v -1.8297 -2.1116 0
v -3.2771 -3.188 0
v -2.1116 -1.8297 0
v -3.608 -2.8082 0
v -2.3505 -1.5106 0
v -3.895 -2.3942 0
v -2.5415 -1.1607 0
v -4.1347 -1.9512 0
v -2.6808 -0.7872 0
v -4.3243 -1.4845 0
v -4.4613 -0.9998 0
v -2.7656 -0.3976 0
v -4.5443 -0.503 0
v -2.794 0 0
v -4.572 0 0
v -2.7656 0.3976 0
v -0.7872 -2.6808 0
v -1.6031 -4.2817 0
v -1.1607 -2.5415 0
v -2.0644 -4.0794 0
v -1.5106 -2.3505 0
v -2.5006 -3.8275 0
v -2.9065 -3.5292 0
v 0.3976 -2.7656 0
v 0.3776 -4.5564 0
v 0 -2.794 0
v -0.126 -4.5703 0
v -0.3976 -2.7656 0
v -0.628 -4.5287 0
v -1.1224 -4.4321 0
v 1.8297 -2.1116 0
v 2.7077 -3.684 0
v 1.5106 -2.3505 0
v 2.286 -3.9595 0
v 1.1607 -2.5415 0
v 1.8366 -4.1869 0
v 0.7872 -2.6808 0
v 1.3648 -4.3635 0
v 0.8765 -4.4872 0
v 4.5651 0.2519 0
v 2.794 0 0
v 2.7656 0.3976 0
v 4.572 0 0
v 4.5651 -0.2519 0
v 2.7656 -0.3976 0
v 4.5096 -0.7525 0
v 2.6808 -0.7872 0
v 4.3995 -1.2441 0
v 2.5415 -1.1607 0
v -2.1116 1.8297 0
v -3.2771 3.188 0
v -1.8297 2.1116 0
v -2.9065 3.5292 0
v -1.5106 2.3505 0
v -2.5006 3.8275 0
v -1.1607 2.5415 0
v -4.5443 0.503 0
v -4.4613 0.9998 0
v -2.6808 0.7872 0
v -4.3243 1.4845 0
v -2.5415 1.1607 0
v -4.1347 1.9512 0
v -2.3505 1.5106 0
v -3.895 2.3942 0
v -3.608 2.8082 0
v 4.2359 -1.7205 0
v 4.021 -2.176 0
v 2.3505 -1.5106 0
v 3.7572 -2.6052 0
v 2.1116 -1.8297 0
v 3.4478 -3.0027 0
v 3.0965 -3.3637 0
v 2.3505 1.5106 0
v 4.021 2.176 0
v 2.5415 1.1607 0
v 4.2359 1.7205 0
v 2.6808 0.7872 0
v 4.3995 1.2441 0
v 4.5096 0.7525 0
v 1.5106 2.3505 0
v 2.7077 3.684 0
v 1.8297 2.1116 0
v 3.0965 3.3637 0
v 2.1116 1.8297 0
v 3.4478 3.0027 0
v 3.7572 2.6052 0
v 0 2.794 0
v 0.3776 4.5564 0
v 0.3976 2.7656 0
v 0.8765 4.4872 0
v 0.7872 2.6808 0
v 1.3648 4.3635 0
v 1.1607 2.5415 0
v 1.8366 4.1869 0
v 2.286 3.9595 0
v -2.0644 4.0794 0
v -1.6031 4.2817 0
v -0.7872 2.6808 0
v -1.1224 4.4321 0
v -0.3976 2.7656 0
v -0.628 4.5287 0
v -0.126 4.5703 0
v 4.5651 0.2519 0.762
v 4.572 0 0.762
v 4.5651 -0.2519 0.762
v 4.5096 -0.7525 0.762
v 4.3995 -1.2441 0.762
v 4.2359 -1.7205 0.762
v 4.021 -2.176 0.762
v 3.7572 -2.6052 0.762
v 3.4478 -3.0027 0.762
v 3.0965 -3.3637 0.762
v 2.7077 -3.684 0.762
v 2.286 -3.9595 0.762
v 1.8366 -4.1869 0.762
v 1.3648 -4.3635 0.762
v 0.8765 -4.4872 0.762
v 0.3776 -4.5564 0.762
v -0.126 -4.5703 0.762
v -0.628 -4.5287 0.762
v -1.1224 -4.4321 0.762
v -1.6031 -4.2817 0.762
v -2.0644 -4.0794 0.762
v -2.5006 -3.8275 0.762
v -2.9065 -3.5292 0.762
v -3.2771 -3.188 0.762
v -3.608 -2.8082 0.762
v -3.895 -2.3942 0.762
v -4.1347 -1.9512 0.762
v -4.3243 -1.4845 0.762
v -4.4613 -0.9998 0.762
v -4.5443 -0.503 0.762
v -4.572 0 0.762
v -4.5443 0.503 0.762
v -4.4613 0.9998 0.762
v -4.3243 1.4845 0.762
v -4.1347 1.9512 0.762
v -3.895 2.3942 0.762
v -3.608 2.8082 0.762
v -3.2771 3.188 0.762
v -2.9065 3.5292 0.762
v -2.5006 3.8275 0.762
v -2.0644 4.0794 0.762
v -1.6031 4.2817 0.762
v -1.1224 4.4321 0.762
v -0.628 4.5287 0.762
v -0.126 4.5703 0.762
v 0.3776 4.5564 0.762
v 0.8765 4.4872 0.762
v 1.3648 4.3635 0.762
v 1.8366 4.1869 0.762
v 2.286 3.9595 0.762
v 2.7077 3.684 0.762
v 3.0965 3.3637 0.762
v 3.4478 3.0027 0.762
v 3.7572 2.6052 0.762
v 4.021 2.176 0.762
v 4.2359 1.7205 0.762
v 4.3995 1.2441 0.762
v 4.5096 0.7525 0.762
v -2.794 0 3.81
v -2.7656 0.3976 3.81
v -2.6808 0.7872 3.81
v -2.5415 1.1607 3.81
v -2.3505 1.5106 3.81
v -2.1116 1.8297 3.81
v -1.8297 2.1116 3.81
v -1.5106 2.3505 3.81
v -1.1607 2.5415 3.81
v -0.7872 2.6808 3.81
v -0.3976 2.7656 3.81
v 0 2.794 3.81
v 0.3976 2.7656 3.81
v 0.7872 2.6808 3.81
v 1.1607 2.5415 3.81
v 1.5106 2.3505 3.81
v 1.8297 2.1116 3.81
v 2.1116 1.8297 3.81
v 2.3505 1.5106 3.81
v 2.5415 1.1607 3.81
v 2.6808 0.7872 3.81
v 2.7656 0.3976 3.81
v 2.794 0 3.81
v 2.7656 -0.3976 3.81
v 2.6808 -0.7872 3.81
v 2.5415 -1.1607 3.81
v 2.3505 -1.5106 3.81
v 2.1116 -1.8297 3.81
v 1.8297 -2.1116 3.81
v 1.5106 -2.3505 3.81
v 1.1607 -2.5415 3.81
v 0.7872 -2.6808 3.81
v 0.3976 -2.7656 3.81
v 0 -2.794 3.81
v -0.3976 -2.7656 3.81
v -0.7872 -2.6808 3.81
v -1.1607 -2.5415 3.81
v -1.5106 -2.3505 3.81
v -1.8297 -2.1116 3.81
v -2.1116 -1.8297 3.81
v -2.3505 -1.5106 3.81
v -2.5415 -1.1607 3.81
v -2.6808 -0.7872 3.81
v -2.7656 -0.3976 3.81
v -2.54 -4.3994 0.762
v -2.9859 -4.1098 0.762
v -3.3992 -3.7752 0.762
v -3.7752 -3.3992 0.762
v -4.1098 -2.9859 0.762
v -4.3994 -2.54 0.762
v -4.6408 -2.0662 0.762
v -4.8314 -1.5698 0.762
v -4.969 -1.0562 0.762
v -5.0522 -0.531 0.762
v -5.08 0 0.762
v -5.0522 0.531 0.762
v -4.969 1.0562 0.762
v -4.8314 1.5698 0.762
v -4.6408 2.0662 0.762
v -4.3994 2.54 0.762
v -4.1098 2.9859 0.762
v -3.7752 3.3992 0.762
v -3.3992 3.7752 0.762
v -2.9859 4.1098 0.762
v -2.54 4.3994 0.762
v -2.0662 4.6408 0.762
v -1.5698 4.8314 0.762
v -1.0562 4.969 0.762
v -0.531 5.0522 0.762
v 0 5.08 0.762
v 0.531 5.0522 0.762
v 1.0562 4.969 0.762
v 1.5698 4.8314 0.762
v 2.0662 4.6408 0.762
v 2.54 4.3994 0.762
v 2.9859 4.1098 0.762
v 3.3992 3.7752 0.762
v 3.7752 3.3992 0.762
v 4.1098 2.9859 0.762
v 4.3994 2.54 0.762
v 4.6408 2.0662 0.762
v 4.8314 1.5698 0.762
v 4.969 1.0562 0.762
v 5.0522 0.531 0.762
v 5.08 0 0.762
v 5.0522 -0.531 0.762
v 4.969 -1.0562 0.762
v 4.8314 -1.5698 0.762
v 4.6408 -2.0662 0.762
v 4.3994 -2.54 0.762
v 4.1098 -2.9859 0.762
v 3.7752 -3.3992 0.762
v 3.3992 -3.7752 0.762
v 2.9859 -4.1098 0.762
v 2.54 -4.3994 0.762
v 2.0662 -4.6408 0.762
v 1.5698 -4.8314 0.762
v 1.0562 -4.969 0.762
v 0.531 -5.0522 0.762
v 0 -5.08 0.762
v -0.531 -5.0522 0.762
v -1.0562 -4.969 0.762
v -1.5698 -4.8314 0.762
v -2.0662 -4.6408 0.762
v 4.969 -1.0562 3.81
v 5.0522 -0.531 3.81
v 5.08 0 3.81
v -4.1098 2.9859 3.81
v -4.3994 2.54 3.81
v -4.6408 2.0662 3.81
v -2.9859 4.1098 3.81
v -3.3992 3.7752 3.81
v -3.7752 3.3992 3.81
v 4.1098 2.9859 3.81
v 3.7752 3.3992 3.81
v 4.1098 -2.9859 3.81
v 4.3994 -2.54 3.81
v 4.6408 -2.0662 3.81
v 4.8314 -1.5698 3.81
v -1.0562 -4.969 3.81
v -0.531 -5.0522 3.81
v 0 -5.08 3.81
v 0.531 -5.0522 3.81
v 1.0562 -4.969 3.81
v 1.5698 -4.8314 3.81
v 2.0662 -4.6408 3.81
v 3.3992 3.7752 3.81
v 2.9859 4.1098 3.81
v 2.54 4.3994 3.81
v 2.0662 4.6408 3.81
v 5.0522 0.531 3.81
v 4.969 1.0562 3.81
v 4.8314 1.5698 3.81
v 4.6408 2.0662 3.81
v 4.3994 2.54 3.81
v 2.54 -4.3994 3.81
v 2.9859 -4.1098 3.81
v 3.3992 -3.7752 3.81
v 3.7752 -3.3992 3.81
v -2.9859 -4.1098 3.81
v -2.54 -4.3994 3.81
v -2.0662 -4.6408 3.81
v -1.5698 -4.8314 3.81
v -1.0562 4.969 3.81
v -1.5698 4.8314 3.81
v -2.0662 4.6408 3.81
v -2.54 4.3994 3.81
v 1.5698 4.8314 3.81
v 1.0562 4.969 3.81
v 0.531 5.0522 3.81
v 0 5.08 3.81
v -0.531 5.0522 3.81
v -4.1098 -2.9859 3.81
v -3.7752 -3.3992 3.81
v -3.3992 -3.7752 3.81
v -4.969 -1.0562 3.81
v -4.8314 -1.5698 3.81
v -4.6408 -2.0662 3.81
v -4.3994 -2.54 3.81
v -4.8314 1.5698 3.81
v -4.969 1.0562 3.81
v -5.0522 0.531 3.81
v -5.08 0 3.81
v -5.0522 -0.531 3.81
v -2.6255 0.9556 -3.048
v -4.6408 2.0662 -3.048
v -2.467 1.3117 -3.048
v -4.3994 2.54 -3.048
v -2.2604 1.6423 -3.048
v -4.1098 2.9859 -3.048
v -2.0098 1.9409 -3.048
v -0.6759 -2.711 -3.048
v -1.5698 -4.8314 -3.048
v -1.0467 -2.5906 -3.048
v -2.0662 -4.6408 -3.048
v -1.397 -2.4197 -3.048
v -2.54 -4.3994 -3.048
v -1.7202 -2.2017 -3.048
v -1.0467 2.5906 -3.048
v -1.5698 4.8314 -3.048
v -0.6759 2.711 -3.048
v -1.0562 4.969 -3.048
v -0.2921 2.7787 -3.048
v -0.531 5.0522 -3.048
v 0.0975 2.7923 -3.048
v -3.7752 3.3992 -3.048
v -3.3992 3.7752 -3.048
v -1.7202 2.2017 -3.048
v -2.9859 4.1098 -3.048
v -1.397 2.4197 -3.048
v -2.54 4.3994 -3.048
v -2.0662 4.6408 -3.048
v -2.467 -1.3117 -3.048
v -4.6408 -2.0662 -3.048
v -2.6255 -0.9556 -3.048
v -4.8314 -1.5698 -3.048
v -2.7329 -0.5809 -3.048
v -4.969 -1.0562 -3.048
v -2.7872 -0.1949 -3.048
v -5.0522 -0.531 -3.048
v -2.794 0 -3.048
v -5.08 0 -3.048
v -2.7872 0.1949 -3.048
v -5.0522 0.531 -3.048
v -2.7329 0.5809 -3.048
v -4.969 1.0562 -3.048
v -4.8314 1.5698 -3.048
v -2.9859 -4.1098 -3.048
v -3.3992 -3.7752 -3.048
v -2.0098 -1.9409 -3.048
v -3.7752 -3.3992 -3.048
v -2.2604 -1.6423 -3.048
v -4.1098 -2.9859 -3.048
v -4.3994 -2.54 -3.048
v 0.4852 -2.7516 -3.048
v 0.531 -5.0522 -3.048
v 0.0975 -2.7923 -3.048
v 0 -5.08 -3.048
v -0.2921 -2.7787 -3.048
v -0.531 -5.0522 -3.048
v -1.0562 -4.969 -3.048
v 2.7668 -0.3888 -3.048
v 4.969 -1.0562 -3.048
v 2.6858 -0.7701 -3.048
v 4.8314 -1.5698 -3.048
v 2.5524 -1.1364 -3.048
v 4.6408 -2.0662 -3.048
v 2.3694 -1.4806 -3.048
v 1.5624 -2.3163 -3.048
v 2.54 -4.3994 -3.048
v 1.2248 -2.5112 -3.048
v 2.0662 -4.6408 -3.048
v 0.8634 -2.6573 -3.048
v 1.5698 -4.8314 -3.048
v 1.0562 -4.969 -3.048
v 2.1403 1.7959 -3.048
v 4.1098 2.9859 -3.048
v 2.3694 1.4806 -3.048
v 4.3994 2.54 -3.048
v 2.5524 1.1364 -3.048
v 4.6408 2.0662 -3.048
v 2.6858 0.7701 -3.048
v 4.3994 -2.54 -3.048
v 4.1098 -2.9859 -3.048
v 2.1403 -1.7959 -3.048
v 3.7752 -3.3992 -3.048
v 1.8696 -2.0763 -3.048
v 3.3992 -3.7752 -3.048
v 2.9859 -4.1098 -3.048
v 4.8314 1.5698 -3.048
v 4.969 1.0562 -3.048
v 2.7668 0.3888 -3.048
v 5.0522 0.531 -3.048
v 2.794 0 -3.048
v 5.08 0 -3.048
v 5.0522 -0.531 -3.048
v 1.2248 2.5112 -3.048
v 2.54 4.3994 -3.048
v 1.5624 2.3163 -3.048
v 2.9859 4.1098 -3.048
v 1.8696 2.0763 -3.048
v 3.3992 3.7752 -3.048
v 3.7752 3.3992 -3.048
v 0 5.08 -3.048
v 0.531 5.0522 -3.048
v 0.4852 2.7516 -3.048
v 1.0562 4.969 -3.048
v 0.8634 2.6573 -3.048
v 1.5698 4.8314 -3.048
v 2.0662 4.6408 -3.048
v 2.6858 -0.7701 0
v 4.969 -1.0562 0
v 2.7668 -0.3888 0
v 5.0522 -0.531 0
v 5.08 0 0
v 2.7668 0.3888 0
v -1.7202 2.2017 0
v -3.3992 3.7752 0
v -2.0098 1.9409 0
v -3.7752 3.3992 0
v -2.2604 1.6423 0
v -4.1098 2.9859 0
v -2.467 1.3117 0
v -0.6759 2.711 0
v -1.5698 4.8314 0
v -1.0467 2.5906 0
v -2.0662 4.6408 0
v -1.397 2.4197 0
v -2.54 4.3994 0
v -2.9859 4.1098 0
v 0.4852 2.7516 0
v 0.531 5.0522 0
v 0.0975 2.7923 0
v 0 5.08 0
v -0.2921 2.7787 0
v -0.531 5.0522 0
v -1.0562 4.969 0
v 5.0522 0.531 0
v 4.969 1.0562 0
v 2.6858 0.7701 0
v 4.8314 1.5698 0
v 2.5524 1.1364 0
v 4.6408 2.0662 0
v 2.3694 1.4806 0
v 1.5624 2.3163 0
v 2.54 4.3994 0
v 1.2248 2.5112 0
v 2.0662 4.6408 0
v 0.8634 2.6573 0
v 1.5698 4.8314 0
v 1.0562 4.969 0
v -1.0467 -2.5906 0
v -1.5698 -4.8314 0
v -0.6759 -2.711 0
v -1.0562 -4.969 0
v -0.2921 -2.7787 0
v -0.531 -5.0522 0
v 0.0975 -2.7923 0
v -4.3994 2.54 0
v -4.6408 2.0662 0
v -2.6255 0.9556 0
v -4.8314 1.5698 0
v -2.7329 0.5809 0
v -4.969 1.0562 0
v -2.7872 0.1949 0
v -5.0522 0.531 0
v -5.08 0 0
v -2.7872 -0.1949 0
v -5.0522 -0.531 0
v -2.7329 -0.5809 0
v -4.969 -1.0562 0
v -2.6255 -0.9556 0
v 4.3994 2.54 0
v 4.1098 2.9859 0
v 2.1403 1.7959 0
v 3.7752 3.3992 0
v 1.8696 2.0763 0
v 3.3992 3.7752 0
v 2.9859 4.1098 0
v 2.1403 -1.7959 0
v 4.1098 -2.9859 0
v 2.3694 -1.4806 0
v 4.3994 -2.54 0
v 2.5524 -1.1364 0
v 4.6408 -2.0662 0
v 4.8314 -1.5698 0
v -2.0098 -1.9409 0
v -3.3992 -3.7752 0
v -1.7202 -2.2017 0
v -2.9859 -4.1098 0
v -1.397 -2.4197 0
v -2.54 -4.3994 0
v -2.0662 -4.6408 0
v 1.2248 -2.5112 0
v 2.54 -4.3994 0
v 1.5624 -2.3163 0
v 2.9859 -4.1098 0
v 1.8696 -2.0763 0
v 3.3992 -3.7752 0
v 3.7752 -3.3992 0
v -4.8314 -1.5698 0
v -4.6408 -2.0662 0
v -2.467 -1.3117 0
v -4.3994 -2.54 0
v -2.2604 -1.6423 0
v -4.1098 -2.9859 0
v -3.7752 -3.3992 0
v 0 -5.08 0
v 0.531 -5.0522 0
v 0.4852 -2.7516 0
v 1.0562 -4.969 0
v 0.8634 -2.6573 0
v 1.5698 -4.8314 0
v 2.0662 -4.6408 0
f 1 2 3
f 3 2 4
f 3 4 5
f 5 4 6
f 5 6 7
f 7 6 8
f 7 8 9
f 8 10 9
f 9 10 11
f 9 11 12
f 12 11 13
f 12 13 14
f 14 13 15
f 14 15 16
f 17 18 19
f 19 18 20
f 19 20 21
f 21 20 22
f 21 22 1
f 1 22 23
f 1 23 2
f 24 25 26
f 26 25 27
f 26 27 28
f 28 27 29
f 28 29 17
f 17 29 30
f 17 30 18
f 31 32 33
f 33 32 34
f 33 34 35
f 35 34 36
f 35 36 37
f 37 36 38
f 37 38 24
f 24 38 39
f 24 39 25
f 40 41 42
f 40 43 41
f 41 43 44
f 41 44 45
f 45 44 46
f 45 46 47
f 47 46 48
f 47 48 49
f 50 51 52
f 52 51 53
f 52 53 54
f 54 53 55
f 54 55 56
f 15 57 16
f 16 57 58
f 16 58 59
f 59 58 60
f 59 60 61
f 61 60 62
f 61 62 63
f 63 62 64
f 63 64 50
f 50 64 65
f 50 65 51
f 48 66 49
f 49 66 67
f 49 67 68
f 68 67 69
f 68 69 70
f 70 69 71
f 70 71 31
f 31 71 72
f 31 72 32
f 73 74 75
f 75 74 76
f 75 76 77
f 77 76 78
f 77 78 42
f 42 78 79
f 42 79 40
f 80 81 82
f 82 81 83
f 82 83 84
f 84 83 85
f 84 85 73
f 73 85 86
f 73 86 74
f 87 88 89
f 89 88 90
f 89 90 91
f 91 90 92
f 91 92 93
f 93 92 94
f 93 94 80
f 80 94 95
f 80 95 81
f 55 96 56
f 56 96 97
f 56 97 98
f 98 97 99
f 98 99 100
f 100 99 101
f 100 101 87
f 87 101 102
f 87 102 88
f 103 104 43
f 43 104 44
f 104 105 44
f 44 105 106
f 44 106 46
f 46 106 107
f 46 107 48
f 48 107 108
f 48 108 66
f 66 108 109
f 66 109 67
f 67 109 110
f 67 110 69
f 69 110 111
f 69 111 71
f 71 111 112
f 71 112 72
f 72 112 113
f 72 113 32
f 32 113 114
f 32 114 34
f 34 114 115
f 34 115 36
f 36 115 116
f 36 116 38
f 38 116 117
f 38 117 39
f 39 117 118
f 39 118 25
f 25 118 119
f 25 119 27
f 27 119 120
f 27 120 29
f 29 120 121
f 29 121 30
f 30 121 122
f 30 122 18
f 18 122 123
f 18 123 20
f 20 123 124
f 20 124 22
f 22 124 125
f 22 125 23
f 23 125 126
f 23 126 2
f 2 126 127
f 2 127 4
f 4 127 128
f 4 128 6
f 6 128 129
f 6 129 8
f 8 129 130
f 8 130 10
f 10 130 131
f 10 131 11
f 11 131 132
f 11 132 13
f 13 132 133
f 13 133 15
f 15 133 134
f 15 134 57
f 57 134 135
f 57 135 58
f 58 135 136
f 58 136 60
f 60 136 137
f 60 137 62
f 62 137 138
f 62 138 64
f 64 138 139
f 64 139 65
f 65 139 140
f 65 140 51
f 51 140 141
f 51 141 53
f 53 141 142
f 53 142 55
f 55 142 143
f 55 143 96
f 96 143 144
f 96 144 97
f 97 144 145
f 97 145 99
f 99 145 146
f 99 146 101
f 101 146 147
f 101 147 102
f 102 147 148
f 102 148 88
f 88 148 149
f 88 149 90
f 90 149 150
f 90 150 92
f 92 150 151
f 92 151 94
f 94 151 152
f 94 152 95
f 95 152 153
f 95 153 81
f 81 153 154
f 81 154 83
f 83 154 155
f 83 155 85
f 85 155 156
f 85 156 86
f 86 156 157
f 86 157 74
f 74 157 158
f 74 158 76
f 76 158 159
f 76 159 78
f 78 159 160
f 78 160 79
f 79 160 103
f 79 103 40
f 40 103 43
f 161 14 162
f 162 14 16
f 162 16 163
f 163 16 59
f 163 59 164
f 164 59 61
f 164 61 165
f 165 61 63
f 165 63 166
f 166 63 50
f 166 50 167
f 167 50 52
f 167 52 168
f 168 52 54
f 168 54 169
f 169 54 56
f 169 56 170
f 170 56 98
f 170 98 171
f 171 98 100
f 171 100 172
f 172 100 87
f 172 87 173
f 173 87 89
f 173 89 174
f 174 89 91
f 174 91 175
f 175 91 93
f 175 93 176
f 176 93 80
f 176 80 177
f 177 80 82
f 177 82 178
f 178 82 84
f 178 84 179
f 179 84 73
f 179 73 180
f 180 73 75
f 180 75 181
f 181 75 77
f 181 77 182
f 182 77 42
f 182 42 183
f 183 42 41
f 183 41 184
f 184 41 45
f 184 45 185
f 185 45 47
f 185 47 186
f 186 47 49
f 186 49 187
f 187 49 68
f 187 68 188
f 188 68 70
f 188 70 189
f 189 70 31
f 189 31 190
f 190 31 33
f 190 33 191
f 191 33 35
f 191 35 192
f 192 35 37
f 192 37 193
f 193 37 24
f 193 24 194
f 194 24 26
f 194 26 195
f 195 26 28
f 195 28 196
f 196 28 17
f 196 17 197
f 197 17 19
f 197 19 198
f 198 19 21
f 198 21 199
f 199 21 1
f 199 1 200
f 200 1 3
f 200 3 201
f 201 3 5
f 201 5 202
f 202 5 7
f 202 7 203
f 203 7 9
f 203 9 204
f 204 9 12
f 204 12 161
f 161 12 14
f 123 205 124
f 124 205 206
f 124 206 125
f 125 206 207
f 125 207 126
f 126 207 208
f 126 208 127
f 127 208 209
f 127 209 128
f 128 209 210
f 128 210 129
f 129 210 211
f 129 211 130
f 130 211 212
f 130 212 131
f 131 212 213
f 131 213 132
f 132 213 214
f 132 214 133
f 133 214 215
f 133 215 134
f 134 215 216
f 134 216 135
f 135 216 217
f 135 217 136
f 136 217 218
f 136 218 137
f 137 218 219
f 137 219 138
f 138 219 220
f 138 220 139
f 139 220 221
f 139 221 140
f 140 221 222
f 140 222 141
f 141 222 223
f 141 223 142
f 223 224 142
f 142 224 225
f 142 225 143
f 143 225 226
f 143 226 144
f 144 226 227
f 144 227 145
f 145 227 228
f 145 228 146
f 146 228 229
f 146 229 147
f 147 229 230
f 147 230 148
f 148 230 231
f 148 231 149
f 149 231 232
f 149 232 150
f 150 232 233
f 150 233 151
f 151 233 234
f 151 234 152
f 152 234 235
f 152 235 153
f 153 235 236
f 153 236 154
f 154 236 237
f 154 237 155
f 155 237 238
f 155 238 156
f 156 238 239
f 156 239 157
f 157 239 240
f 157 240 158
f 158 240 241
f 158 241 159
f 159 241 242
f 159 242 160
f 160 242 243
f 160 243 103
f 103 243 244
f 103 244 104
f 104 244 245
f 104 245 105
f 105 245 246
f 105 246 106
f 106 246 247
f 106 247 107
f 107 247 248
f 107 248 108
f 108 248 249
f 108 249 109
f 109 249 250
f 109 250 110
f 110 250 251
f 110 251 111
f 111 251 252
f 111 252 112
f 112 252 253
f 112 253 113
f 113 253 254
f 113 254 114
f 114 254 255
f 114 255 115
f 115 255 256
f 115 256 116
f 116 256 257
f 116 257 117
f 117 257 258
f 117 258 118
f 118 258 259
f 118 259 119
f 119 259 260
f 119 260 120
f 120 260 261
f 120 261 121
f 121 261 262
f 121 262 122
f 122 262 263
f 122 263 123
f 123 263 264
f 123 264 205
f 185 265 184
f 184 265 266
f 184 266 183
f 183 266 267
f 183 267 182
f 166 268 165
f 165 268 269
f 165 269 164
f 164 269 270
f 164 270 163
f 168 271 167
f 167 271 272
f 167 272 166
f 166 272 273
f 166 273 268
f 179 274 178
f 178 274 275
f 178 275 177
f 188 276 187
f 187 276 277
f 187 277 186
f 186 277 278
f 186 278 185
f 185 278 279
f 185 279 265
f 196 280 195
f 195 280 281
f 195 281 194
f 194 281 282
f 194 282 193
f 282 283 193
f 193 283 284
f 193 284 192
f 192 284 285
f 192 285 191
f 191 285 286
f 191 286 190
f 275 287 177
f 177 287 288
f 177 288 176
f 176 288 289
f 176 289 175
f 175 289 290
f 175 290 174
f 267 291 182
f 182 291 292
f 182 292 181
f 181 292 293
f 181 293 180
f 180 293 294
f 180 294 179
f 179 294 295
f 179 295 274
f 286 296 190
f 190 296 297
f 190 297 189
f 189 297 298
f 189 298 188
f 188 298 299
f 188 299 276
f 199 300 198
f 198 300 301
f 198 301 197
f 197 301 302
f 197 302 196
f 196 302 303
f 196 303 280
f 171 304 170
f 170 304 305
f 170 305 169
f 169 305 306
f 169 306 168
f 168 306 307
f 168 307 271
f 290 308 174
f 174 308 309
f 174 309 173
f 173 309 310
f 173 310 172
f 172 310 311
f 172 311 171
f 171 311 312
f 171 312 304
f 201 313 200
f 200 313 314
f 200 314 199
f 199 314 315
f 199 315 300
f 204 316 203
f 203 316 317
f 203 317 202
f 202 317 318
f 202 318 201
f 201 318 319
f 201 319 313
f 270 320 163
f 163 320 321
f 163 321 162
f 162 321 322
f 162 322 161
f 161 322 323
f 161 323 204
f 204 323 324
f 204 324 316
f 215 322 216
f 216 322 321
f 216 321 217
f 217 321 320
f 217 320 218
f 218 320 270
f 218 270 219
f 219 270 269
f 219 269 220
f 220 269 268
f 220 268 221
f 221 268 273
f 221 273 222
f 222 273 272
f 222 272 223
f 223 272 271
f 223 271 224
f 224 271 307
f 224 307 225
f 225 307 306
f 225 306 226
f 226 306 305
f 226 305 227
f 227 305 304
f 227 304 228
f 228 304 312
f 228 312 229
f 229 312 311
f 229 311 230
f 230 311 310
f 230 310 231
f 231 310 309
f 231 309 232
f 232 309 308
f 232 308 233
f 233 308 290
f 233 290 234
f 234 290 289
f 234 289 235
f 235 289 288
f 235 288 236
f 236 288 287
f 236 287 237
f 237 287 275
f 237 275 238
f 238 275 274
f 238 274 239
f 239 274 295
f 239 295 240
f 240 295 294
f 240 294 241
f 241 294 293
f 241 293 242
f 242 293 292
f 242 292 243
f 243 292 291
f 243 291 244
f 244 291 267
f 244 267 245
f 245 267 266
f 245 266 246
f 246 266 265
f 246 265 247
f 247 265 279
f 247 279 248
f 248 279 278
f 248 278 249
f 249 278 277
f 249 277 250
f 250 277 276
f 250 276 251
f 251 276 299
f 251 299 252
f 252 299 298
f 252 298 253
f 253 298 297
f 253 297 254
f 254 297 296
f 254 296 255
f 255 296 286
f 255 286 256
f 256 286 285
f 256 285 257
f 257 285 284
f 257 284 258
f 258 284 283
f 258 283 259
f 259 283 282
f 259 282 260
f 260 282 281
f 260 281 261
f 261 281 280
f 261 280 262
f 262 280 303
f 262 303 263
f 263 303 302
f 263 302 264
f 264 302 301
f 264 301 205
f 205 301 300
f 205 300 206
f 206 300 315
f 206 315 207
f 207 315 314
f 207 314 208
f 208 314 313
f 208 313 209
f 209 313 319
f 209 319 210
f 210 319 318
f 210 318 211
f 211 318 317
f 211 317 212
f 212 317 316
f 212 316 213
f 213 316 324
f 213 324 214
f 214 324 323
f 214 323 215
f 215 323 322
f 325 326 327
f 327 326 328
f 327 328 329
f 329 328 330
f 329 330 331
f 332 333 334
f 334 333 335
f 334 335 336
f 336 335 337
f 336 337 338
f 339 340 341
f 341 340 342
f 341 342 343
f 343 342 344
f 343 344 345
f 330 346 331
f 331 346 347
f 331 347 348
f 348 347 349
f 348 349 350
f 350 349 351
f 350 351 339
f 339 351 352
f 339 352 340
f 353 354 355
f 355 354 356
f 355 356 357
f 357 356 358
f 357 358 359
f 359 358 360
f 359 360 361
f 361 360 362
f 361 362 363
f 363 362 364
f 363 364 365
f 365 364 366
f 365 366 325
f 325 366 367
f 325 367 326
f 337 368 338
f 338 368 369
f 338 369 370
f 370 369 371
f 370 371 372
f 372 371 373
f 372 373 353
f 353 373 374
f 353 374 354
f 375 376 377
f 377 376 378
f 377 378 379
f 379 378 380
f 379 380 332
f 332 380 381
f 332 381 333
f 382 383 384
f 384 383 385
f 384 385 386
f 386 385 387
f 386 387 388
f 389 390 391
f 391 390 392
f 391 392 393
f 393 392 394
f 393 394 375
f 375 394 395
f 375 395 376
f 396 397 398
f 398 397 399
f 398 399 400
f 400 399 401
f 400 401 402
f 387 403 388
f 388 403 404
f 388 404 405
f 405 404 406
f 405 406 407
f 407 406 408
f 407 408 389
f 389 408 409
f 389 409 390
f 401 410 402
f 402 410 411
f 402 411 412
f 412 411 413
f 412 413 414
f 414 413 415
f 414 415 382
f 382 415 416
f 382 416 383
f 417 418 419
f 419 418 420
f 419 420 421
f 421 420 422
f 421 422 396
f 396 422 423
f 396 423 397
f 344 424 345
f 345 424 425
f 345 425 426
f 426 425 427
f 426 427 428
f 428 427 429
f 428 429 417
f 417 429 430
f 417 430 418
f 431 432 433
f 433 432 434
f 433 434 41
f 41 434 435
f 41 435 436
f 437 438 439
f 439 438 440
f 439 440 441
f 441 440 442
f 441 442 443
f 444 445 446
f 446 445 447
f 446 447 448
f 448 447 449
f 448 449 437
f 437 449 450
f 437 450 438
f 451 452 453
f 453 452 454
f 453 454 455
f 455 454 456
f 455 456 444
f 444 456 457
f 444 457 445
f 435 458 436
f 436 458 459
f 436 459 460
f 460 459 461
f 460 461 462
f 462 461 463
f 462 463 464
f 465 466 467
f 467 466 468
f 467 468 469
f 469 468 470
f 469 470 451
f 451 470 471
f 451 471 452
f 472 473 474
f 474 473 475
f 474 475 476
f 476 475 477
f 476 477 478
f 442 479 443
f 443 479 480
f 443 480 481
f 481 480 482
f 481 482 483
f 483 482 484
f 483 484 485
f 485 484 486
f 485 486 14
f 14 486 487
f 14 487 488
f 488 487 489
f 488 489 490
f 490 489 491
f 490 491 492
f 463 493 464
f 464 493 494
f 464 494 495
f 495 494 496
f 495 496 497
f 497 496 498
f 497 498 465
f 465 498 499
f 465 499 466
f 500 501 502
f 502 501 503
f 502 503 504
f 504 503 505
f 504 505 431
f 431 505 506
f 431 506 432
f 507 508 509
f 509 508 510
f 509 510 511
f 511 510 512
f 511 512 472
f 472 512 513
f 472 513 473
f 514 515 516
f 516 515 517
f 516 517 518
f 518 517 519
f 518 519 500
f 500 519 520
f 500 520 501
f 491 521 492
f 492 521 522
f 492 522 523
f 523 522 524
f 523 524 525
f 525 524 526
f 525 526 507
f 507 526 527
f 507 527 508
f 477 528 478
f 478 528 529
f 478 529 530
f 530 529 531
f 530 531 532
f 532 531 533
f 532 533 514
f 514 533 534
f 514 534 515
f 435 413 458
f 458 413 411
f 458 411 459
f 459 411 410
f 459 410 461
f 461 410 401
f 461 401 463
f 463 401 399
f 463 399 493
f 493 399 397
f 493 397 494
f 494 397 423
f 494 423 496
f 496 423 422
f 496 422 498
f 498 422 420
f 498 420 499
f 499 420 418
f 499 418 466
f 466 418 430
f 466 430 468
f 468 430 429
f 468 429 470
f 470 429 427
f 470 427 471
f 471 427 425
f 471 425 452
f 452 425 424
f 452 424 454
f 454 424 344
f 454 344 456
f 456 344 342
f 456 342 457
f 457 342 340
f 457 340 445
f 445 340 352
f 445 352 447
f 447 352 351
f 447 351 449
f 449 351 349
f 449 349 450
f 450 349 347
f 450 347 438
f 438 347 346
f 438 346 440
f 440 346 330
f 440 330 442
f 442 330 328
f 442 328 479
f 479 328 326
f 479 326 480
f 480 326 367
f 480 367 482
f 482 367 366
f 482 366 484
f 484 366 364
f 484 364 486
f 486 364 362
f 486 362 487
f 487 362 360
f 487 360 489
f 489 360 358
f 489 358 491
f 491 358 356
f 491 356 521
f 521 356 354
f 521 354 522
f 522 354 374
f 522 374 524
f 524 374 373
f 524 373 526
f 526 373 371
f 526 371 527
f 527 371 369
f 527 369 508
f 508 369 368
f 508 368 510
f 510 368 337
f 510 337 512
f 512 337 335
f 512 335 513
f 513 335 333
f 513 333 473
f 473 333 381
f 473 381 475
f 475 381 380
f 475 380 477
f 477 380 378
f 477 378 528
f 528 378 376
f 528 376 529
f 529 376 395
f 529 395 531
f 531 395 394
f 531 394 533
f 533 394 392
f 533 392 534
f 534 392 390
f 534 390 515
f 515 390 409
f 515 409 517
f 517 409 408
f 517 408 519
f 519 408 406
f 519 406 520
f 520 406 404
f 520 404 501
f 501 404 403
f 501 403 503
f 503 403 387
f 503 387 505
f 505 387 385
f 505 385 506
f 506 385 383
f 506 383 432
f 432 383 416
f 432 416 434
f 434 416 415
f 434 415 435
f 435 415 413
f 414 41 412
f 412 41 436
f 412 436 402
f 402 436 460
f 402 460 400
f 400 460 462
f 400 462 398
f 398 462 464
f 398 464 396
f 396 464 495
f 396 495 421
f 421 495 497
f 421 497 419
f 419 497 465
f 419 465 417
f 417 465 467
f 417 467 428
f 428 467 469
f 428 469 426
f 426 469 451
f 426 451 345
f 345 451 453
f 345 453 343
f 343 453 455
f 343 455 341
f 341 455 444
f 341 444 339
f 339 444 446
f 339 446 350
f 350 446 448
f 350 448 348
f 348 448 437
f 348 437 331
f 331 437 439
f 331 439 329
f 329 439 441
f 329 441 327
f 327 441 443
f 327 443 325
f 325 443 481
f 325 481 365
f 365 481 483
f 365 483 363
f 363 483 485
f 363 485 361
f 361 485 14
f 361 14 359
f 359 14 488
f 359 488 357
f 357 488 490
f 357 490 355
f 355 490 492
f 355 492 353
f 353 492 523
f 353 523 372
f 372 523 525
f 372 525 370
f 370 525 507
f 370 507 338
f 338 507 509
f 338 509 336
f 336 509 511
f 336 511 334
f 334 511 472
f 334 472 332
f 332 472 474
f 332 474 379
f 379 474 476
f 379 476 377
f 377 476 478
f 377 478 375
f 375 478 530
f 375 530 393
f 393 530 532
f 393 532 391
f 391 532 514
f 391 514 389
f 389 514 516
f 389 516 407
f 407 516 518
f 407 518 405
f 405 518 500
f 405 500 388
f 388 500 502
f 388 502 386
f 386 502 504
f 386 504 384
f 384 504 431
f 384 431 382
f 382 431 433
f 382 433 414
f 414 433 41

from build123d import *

# Parameters (mm, degrees)
SKETCH1_R           = 4.572
SKETCH1_R_2         = 2.794
BOSS_EXTRUDE2_DEPTH = 0.762
SKETCH3_R           = 5.08
SKETCH3_R_2         = 2.794
BOSS_EXTRUDE3_DEPTH = 3.048
SKETCH4_R           = 5.08
SKETCH4_R_2         = 2.794
BOSS_EXTRUDE4_DEPTH = 3.048


with BuildPart() as part:
    # Sketch1 → Boss-Extrude2 (new body)
    with BuildSketch(Plane.XY):
        Circle(SKETCH1_R)
        Circle(SKETCH1_R_2, mode=Mode.SUBTRACT)
    extrude(amount=BOSS_EXTRUDE2_DEPTH)

    # Sketch3 → Boss-Extrude3 (add)
    with BuildSketch(Plane.XY.offset(0.762)):
        Circle(SKETCH3_R)
        Circle(SKETCH3_R_2, mode=Mode.SUBTRACT)
    extrude(amount=BOSS_EXTRUDE3_DEPTH)


with BuildPart() as body_2:
    # Sketch4 → Boss-Extrude4 (new body)
    with BuildSketch(Plane(origin=(0, 0, 0), x_dir=(-1, 0, 0), z_dir=(0, 0, -1))):
        Circle(SKETCH4_R)
        Circle(SKETCH4_R_2, mode=Mode.SUBTRACT)
    extrude(amount=BOSS_EXTRUDE4_DEPTH)


solid = Compound([part.part, body_2.part])
